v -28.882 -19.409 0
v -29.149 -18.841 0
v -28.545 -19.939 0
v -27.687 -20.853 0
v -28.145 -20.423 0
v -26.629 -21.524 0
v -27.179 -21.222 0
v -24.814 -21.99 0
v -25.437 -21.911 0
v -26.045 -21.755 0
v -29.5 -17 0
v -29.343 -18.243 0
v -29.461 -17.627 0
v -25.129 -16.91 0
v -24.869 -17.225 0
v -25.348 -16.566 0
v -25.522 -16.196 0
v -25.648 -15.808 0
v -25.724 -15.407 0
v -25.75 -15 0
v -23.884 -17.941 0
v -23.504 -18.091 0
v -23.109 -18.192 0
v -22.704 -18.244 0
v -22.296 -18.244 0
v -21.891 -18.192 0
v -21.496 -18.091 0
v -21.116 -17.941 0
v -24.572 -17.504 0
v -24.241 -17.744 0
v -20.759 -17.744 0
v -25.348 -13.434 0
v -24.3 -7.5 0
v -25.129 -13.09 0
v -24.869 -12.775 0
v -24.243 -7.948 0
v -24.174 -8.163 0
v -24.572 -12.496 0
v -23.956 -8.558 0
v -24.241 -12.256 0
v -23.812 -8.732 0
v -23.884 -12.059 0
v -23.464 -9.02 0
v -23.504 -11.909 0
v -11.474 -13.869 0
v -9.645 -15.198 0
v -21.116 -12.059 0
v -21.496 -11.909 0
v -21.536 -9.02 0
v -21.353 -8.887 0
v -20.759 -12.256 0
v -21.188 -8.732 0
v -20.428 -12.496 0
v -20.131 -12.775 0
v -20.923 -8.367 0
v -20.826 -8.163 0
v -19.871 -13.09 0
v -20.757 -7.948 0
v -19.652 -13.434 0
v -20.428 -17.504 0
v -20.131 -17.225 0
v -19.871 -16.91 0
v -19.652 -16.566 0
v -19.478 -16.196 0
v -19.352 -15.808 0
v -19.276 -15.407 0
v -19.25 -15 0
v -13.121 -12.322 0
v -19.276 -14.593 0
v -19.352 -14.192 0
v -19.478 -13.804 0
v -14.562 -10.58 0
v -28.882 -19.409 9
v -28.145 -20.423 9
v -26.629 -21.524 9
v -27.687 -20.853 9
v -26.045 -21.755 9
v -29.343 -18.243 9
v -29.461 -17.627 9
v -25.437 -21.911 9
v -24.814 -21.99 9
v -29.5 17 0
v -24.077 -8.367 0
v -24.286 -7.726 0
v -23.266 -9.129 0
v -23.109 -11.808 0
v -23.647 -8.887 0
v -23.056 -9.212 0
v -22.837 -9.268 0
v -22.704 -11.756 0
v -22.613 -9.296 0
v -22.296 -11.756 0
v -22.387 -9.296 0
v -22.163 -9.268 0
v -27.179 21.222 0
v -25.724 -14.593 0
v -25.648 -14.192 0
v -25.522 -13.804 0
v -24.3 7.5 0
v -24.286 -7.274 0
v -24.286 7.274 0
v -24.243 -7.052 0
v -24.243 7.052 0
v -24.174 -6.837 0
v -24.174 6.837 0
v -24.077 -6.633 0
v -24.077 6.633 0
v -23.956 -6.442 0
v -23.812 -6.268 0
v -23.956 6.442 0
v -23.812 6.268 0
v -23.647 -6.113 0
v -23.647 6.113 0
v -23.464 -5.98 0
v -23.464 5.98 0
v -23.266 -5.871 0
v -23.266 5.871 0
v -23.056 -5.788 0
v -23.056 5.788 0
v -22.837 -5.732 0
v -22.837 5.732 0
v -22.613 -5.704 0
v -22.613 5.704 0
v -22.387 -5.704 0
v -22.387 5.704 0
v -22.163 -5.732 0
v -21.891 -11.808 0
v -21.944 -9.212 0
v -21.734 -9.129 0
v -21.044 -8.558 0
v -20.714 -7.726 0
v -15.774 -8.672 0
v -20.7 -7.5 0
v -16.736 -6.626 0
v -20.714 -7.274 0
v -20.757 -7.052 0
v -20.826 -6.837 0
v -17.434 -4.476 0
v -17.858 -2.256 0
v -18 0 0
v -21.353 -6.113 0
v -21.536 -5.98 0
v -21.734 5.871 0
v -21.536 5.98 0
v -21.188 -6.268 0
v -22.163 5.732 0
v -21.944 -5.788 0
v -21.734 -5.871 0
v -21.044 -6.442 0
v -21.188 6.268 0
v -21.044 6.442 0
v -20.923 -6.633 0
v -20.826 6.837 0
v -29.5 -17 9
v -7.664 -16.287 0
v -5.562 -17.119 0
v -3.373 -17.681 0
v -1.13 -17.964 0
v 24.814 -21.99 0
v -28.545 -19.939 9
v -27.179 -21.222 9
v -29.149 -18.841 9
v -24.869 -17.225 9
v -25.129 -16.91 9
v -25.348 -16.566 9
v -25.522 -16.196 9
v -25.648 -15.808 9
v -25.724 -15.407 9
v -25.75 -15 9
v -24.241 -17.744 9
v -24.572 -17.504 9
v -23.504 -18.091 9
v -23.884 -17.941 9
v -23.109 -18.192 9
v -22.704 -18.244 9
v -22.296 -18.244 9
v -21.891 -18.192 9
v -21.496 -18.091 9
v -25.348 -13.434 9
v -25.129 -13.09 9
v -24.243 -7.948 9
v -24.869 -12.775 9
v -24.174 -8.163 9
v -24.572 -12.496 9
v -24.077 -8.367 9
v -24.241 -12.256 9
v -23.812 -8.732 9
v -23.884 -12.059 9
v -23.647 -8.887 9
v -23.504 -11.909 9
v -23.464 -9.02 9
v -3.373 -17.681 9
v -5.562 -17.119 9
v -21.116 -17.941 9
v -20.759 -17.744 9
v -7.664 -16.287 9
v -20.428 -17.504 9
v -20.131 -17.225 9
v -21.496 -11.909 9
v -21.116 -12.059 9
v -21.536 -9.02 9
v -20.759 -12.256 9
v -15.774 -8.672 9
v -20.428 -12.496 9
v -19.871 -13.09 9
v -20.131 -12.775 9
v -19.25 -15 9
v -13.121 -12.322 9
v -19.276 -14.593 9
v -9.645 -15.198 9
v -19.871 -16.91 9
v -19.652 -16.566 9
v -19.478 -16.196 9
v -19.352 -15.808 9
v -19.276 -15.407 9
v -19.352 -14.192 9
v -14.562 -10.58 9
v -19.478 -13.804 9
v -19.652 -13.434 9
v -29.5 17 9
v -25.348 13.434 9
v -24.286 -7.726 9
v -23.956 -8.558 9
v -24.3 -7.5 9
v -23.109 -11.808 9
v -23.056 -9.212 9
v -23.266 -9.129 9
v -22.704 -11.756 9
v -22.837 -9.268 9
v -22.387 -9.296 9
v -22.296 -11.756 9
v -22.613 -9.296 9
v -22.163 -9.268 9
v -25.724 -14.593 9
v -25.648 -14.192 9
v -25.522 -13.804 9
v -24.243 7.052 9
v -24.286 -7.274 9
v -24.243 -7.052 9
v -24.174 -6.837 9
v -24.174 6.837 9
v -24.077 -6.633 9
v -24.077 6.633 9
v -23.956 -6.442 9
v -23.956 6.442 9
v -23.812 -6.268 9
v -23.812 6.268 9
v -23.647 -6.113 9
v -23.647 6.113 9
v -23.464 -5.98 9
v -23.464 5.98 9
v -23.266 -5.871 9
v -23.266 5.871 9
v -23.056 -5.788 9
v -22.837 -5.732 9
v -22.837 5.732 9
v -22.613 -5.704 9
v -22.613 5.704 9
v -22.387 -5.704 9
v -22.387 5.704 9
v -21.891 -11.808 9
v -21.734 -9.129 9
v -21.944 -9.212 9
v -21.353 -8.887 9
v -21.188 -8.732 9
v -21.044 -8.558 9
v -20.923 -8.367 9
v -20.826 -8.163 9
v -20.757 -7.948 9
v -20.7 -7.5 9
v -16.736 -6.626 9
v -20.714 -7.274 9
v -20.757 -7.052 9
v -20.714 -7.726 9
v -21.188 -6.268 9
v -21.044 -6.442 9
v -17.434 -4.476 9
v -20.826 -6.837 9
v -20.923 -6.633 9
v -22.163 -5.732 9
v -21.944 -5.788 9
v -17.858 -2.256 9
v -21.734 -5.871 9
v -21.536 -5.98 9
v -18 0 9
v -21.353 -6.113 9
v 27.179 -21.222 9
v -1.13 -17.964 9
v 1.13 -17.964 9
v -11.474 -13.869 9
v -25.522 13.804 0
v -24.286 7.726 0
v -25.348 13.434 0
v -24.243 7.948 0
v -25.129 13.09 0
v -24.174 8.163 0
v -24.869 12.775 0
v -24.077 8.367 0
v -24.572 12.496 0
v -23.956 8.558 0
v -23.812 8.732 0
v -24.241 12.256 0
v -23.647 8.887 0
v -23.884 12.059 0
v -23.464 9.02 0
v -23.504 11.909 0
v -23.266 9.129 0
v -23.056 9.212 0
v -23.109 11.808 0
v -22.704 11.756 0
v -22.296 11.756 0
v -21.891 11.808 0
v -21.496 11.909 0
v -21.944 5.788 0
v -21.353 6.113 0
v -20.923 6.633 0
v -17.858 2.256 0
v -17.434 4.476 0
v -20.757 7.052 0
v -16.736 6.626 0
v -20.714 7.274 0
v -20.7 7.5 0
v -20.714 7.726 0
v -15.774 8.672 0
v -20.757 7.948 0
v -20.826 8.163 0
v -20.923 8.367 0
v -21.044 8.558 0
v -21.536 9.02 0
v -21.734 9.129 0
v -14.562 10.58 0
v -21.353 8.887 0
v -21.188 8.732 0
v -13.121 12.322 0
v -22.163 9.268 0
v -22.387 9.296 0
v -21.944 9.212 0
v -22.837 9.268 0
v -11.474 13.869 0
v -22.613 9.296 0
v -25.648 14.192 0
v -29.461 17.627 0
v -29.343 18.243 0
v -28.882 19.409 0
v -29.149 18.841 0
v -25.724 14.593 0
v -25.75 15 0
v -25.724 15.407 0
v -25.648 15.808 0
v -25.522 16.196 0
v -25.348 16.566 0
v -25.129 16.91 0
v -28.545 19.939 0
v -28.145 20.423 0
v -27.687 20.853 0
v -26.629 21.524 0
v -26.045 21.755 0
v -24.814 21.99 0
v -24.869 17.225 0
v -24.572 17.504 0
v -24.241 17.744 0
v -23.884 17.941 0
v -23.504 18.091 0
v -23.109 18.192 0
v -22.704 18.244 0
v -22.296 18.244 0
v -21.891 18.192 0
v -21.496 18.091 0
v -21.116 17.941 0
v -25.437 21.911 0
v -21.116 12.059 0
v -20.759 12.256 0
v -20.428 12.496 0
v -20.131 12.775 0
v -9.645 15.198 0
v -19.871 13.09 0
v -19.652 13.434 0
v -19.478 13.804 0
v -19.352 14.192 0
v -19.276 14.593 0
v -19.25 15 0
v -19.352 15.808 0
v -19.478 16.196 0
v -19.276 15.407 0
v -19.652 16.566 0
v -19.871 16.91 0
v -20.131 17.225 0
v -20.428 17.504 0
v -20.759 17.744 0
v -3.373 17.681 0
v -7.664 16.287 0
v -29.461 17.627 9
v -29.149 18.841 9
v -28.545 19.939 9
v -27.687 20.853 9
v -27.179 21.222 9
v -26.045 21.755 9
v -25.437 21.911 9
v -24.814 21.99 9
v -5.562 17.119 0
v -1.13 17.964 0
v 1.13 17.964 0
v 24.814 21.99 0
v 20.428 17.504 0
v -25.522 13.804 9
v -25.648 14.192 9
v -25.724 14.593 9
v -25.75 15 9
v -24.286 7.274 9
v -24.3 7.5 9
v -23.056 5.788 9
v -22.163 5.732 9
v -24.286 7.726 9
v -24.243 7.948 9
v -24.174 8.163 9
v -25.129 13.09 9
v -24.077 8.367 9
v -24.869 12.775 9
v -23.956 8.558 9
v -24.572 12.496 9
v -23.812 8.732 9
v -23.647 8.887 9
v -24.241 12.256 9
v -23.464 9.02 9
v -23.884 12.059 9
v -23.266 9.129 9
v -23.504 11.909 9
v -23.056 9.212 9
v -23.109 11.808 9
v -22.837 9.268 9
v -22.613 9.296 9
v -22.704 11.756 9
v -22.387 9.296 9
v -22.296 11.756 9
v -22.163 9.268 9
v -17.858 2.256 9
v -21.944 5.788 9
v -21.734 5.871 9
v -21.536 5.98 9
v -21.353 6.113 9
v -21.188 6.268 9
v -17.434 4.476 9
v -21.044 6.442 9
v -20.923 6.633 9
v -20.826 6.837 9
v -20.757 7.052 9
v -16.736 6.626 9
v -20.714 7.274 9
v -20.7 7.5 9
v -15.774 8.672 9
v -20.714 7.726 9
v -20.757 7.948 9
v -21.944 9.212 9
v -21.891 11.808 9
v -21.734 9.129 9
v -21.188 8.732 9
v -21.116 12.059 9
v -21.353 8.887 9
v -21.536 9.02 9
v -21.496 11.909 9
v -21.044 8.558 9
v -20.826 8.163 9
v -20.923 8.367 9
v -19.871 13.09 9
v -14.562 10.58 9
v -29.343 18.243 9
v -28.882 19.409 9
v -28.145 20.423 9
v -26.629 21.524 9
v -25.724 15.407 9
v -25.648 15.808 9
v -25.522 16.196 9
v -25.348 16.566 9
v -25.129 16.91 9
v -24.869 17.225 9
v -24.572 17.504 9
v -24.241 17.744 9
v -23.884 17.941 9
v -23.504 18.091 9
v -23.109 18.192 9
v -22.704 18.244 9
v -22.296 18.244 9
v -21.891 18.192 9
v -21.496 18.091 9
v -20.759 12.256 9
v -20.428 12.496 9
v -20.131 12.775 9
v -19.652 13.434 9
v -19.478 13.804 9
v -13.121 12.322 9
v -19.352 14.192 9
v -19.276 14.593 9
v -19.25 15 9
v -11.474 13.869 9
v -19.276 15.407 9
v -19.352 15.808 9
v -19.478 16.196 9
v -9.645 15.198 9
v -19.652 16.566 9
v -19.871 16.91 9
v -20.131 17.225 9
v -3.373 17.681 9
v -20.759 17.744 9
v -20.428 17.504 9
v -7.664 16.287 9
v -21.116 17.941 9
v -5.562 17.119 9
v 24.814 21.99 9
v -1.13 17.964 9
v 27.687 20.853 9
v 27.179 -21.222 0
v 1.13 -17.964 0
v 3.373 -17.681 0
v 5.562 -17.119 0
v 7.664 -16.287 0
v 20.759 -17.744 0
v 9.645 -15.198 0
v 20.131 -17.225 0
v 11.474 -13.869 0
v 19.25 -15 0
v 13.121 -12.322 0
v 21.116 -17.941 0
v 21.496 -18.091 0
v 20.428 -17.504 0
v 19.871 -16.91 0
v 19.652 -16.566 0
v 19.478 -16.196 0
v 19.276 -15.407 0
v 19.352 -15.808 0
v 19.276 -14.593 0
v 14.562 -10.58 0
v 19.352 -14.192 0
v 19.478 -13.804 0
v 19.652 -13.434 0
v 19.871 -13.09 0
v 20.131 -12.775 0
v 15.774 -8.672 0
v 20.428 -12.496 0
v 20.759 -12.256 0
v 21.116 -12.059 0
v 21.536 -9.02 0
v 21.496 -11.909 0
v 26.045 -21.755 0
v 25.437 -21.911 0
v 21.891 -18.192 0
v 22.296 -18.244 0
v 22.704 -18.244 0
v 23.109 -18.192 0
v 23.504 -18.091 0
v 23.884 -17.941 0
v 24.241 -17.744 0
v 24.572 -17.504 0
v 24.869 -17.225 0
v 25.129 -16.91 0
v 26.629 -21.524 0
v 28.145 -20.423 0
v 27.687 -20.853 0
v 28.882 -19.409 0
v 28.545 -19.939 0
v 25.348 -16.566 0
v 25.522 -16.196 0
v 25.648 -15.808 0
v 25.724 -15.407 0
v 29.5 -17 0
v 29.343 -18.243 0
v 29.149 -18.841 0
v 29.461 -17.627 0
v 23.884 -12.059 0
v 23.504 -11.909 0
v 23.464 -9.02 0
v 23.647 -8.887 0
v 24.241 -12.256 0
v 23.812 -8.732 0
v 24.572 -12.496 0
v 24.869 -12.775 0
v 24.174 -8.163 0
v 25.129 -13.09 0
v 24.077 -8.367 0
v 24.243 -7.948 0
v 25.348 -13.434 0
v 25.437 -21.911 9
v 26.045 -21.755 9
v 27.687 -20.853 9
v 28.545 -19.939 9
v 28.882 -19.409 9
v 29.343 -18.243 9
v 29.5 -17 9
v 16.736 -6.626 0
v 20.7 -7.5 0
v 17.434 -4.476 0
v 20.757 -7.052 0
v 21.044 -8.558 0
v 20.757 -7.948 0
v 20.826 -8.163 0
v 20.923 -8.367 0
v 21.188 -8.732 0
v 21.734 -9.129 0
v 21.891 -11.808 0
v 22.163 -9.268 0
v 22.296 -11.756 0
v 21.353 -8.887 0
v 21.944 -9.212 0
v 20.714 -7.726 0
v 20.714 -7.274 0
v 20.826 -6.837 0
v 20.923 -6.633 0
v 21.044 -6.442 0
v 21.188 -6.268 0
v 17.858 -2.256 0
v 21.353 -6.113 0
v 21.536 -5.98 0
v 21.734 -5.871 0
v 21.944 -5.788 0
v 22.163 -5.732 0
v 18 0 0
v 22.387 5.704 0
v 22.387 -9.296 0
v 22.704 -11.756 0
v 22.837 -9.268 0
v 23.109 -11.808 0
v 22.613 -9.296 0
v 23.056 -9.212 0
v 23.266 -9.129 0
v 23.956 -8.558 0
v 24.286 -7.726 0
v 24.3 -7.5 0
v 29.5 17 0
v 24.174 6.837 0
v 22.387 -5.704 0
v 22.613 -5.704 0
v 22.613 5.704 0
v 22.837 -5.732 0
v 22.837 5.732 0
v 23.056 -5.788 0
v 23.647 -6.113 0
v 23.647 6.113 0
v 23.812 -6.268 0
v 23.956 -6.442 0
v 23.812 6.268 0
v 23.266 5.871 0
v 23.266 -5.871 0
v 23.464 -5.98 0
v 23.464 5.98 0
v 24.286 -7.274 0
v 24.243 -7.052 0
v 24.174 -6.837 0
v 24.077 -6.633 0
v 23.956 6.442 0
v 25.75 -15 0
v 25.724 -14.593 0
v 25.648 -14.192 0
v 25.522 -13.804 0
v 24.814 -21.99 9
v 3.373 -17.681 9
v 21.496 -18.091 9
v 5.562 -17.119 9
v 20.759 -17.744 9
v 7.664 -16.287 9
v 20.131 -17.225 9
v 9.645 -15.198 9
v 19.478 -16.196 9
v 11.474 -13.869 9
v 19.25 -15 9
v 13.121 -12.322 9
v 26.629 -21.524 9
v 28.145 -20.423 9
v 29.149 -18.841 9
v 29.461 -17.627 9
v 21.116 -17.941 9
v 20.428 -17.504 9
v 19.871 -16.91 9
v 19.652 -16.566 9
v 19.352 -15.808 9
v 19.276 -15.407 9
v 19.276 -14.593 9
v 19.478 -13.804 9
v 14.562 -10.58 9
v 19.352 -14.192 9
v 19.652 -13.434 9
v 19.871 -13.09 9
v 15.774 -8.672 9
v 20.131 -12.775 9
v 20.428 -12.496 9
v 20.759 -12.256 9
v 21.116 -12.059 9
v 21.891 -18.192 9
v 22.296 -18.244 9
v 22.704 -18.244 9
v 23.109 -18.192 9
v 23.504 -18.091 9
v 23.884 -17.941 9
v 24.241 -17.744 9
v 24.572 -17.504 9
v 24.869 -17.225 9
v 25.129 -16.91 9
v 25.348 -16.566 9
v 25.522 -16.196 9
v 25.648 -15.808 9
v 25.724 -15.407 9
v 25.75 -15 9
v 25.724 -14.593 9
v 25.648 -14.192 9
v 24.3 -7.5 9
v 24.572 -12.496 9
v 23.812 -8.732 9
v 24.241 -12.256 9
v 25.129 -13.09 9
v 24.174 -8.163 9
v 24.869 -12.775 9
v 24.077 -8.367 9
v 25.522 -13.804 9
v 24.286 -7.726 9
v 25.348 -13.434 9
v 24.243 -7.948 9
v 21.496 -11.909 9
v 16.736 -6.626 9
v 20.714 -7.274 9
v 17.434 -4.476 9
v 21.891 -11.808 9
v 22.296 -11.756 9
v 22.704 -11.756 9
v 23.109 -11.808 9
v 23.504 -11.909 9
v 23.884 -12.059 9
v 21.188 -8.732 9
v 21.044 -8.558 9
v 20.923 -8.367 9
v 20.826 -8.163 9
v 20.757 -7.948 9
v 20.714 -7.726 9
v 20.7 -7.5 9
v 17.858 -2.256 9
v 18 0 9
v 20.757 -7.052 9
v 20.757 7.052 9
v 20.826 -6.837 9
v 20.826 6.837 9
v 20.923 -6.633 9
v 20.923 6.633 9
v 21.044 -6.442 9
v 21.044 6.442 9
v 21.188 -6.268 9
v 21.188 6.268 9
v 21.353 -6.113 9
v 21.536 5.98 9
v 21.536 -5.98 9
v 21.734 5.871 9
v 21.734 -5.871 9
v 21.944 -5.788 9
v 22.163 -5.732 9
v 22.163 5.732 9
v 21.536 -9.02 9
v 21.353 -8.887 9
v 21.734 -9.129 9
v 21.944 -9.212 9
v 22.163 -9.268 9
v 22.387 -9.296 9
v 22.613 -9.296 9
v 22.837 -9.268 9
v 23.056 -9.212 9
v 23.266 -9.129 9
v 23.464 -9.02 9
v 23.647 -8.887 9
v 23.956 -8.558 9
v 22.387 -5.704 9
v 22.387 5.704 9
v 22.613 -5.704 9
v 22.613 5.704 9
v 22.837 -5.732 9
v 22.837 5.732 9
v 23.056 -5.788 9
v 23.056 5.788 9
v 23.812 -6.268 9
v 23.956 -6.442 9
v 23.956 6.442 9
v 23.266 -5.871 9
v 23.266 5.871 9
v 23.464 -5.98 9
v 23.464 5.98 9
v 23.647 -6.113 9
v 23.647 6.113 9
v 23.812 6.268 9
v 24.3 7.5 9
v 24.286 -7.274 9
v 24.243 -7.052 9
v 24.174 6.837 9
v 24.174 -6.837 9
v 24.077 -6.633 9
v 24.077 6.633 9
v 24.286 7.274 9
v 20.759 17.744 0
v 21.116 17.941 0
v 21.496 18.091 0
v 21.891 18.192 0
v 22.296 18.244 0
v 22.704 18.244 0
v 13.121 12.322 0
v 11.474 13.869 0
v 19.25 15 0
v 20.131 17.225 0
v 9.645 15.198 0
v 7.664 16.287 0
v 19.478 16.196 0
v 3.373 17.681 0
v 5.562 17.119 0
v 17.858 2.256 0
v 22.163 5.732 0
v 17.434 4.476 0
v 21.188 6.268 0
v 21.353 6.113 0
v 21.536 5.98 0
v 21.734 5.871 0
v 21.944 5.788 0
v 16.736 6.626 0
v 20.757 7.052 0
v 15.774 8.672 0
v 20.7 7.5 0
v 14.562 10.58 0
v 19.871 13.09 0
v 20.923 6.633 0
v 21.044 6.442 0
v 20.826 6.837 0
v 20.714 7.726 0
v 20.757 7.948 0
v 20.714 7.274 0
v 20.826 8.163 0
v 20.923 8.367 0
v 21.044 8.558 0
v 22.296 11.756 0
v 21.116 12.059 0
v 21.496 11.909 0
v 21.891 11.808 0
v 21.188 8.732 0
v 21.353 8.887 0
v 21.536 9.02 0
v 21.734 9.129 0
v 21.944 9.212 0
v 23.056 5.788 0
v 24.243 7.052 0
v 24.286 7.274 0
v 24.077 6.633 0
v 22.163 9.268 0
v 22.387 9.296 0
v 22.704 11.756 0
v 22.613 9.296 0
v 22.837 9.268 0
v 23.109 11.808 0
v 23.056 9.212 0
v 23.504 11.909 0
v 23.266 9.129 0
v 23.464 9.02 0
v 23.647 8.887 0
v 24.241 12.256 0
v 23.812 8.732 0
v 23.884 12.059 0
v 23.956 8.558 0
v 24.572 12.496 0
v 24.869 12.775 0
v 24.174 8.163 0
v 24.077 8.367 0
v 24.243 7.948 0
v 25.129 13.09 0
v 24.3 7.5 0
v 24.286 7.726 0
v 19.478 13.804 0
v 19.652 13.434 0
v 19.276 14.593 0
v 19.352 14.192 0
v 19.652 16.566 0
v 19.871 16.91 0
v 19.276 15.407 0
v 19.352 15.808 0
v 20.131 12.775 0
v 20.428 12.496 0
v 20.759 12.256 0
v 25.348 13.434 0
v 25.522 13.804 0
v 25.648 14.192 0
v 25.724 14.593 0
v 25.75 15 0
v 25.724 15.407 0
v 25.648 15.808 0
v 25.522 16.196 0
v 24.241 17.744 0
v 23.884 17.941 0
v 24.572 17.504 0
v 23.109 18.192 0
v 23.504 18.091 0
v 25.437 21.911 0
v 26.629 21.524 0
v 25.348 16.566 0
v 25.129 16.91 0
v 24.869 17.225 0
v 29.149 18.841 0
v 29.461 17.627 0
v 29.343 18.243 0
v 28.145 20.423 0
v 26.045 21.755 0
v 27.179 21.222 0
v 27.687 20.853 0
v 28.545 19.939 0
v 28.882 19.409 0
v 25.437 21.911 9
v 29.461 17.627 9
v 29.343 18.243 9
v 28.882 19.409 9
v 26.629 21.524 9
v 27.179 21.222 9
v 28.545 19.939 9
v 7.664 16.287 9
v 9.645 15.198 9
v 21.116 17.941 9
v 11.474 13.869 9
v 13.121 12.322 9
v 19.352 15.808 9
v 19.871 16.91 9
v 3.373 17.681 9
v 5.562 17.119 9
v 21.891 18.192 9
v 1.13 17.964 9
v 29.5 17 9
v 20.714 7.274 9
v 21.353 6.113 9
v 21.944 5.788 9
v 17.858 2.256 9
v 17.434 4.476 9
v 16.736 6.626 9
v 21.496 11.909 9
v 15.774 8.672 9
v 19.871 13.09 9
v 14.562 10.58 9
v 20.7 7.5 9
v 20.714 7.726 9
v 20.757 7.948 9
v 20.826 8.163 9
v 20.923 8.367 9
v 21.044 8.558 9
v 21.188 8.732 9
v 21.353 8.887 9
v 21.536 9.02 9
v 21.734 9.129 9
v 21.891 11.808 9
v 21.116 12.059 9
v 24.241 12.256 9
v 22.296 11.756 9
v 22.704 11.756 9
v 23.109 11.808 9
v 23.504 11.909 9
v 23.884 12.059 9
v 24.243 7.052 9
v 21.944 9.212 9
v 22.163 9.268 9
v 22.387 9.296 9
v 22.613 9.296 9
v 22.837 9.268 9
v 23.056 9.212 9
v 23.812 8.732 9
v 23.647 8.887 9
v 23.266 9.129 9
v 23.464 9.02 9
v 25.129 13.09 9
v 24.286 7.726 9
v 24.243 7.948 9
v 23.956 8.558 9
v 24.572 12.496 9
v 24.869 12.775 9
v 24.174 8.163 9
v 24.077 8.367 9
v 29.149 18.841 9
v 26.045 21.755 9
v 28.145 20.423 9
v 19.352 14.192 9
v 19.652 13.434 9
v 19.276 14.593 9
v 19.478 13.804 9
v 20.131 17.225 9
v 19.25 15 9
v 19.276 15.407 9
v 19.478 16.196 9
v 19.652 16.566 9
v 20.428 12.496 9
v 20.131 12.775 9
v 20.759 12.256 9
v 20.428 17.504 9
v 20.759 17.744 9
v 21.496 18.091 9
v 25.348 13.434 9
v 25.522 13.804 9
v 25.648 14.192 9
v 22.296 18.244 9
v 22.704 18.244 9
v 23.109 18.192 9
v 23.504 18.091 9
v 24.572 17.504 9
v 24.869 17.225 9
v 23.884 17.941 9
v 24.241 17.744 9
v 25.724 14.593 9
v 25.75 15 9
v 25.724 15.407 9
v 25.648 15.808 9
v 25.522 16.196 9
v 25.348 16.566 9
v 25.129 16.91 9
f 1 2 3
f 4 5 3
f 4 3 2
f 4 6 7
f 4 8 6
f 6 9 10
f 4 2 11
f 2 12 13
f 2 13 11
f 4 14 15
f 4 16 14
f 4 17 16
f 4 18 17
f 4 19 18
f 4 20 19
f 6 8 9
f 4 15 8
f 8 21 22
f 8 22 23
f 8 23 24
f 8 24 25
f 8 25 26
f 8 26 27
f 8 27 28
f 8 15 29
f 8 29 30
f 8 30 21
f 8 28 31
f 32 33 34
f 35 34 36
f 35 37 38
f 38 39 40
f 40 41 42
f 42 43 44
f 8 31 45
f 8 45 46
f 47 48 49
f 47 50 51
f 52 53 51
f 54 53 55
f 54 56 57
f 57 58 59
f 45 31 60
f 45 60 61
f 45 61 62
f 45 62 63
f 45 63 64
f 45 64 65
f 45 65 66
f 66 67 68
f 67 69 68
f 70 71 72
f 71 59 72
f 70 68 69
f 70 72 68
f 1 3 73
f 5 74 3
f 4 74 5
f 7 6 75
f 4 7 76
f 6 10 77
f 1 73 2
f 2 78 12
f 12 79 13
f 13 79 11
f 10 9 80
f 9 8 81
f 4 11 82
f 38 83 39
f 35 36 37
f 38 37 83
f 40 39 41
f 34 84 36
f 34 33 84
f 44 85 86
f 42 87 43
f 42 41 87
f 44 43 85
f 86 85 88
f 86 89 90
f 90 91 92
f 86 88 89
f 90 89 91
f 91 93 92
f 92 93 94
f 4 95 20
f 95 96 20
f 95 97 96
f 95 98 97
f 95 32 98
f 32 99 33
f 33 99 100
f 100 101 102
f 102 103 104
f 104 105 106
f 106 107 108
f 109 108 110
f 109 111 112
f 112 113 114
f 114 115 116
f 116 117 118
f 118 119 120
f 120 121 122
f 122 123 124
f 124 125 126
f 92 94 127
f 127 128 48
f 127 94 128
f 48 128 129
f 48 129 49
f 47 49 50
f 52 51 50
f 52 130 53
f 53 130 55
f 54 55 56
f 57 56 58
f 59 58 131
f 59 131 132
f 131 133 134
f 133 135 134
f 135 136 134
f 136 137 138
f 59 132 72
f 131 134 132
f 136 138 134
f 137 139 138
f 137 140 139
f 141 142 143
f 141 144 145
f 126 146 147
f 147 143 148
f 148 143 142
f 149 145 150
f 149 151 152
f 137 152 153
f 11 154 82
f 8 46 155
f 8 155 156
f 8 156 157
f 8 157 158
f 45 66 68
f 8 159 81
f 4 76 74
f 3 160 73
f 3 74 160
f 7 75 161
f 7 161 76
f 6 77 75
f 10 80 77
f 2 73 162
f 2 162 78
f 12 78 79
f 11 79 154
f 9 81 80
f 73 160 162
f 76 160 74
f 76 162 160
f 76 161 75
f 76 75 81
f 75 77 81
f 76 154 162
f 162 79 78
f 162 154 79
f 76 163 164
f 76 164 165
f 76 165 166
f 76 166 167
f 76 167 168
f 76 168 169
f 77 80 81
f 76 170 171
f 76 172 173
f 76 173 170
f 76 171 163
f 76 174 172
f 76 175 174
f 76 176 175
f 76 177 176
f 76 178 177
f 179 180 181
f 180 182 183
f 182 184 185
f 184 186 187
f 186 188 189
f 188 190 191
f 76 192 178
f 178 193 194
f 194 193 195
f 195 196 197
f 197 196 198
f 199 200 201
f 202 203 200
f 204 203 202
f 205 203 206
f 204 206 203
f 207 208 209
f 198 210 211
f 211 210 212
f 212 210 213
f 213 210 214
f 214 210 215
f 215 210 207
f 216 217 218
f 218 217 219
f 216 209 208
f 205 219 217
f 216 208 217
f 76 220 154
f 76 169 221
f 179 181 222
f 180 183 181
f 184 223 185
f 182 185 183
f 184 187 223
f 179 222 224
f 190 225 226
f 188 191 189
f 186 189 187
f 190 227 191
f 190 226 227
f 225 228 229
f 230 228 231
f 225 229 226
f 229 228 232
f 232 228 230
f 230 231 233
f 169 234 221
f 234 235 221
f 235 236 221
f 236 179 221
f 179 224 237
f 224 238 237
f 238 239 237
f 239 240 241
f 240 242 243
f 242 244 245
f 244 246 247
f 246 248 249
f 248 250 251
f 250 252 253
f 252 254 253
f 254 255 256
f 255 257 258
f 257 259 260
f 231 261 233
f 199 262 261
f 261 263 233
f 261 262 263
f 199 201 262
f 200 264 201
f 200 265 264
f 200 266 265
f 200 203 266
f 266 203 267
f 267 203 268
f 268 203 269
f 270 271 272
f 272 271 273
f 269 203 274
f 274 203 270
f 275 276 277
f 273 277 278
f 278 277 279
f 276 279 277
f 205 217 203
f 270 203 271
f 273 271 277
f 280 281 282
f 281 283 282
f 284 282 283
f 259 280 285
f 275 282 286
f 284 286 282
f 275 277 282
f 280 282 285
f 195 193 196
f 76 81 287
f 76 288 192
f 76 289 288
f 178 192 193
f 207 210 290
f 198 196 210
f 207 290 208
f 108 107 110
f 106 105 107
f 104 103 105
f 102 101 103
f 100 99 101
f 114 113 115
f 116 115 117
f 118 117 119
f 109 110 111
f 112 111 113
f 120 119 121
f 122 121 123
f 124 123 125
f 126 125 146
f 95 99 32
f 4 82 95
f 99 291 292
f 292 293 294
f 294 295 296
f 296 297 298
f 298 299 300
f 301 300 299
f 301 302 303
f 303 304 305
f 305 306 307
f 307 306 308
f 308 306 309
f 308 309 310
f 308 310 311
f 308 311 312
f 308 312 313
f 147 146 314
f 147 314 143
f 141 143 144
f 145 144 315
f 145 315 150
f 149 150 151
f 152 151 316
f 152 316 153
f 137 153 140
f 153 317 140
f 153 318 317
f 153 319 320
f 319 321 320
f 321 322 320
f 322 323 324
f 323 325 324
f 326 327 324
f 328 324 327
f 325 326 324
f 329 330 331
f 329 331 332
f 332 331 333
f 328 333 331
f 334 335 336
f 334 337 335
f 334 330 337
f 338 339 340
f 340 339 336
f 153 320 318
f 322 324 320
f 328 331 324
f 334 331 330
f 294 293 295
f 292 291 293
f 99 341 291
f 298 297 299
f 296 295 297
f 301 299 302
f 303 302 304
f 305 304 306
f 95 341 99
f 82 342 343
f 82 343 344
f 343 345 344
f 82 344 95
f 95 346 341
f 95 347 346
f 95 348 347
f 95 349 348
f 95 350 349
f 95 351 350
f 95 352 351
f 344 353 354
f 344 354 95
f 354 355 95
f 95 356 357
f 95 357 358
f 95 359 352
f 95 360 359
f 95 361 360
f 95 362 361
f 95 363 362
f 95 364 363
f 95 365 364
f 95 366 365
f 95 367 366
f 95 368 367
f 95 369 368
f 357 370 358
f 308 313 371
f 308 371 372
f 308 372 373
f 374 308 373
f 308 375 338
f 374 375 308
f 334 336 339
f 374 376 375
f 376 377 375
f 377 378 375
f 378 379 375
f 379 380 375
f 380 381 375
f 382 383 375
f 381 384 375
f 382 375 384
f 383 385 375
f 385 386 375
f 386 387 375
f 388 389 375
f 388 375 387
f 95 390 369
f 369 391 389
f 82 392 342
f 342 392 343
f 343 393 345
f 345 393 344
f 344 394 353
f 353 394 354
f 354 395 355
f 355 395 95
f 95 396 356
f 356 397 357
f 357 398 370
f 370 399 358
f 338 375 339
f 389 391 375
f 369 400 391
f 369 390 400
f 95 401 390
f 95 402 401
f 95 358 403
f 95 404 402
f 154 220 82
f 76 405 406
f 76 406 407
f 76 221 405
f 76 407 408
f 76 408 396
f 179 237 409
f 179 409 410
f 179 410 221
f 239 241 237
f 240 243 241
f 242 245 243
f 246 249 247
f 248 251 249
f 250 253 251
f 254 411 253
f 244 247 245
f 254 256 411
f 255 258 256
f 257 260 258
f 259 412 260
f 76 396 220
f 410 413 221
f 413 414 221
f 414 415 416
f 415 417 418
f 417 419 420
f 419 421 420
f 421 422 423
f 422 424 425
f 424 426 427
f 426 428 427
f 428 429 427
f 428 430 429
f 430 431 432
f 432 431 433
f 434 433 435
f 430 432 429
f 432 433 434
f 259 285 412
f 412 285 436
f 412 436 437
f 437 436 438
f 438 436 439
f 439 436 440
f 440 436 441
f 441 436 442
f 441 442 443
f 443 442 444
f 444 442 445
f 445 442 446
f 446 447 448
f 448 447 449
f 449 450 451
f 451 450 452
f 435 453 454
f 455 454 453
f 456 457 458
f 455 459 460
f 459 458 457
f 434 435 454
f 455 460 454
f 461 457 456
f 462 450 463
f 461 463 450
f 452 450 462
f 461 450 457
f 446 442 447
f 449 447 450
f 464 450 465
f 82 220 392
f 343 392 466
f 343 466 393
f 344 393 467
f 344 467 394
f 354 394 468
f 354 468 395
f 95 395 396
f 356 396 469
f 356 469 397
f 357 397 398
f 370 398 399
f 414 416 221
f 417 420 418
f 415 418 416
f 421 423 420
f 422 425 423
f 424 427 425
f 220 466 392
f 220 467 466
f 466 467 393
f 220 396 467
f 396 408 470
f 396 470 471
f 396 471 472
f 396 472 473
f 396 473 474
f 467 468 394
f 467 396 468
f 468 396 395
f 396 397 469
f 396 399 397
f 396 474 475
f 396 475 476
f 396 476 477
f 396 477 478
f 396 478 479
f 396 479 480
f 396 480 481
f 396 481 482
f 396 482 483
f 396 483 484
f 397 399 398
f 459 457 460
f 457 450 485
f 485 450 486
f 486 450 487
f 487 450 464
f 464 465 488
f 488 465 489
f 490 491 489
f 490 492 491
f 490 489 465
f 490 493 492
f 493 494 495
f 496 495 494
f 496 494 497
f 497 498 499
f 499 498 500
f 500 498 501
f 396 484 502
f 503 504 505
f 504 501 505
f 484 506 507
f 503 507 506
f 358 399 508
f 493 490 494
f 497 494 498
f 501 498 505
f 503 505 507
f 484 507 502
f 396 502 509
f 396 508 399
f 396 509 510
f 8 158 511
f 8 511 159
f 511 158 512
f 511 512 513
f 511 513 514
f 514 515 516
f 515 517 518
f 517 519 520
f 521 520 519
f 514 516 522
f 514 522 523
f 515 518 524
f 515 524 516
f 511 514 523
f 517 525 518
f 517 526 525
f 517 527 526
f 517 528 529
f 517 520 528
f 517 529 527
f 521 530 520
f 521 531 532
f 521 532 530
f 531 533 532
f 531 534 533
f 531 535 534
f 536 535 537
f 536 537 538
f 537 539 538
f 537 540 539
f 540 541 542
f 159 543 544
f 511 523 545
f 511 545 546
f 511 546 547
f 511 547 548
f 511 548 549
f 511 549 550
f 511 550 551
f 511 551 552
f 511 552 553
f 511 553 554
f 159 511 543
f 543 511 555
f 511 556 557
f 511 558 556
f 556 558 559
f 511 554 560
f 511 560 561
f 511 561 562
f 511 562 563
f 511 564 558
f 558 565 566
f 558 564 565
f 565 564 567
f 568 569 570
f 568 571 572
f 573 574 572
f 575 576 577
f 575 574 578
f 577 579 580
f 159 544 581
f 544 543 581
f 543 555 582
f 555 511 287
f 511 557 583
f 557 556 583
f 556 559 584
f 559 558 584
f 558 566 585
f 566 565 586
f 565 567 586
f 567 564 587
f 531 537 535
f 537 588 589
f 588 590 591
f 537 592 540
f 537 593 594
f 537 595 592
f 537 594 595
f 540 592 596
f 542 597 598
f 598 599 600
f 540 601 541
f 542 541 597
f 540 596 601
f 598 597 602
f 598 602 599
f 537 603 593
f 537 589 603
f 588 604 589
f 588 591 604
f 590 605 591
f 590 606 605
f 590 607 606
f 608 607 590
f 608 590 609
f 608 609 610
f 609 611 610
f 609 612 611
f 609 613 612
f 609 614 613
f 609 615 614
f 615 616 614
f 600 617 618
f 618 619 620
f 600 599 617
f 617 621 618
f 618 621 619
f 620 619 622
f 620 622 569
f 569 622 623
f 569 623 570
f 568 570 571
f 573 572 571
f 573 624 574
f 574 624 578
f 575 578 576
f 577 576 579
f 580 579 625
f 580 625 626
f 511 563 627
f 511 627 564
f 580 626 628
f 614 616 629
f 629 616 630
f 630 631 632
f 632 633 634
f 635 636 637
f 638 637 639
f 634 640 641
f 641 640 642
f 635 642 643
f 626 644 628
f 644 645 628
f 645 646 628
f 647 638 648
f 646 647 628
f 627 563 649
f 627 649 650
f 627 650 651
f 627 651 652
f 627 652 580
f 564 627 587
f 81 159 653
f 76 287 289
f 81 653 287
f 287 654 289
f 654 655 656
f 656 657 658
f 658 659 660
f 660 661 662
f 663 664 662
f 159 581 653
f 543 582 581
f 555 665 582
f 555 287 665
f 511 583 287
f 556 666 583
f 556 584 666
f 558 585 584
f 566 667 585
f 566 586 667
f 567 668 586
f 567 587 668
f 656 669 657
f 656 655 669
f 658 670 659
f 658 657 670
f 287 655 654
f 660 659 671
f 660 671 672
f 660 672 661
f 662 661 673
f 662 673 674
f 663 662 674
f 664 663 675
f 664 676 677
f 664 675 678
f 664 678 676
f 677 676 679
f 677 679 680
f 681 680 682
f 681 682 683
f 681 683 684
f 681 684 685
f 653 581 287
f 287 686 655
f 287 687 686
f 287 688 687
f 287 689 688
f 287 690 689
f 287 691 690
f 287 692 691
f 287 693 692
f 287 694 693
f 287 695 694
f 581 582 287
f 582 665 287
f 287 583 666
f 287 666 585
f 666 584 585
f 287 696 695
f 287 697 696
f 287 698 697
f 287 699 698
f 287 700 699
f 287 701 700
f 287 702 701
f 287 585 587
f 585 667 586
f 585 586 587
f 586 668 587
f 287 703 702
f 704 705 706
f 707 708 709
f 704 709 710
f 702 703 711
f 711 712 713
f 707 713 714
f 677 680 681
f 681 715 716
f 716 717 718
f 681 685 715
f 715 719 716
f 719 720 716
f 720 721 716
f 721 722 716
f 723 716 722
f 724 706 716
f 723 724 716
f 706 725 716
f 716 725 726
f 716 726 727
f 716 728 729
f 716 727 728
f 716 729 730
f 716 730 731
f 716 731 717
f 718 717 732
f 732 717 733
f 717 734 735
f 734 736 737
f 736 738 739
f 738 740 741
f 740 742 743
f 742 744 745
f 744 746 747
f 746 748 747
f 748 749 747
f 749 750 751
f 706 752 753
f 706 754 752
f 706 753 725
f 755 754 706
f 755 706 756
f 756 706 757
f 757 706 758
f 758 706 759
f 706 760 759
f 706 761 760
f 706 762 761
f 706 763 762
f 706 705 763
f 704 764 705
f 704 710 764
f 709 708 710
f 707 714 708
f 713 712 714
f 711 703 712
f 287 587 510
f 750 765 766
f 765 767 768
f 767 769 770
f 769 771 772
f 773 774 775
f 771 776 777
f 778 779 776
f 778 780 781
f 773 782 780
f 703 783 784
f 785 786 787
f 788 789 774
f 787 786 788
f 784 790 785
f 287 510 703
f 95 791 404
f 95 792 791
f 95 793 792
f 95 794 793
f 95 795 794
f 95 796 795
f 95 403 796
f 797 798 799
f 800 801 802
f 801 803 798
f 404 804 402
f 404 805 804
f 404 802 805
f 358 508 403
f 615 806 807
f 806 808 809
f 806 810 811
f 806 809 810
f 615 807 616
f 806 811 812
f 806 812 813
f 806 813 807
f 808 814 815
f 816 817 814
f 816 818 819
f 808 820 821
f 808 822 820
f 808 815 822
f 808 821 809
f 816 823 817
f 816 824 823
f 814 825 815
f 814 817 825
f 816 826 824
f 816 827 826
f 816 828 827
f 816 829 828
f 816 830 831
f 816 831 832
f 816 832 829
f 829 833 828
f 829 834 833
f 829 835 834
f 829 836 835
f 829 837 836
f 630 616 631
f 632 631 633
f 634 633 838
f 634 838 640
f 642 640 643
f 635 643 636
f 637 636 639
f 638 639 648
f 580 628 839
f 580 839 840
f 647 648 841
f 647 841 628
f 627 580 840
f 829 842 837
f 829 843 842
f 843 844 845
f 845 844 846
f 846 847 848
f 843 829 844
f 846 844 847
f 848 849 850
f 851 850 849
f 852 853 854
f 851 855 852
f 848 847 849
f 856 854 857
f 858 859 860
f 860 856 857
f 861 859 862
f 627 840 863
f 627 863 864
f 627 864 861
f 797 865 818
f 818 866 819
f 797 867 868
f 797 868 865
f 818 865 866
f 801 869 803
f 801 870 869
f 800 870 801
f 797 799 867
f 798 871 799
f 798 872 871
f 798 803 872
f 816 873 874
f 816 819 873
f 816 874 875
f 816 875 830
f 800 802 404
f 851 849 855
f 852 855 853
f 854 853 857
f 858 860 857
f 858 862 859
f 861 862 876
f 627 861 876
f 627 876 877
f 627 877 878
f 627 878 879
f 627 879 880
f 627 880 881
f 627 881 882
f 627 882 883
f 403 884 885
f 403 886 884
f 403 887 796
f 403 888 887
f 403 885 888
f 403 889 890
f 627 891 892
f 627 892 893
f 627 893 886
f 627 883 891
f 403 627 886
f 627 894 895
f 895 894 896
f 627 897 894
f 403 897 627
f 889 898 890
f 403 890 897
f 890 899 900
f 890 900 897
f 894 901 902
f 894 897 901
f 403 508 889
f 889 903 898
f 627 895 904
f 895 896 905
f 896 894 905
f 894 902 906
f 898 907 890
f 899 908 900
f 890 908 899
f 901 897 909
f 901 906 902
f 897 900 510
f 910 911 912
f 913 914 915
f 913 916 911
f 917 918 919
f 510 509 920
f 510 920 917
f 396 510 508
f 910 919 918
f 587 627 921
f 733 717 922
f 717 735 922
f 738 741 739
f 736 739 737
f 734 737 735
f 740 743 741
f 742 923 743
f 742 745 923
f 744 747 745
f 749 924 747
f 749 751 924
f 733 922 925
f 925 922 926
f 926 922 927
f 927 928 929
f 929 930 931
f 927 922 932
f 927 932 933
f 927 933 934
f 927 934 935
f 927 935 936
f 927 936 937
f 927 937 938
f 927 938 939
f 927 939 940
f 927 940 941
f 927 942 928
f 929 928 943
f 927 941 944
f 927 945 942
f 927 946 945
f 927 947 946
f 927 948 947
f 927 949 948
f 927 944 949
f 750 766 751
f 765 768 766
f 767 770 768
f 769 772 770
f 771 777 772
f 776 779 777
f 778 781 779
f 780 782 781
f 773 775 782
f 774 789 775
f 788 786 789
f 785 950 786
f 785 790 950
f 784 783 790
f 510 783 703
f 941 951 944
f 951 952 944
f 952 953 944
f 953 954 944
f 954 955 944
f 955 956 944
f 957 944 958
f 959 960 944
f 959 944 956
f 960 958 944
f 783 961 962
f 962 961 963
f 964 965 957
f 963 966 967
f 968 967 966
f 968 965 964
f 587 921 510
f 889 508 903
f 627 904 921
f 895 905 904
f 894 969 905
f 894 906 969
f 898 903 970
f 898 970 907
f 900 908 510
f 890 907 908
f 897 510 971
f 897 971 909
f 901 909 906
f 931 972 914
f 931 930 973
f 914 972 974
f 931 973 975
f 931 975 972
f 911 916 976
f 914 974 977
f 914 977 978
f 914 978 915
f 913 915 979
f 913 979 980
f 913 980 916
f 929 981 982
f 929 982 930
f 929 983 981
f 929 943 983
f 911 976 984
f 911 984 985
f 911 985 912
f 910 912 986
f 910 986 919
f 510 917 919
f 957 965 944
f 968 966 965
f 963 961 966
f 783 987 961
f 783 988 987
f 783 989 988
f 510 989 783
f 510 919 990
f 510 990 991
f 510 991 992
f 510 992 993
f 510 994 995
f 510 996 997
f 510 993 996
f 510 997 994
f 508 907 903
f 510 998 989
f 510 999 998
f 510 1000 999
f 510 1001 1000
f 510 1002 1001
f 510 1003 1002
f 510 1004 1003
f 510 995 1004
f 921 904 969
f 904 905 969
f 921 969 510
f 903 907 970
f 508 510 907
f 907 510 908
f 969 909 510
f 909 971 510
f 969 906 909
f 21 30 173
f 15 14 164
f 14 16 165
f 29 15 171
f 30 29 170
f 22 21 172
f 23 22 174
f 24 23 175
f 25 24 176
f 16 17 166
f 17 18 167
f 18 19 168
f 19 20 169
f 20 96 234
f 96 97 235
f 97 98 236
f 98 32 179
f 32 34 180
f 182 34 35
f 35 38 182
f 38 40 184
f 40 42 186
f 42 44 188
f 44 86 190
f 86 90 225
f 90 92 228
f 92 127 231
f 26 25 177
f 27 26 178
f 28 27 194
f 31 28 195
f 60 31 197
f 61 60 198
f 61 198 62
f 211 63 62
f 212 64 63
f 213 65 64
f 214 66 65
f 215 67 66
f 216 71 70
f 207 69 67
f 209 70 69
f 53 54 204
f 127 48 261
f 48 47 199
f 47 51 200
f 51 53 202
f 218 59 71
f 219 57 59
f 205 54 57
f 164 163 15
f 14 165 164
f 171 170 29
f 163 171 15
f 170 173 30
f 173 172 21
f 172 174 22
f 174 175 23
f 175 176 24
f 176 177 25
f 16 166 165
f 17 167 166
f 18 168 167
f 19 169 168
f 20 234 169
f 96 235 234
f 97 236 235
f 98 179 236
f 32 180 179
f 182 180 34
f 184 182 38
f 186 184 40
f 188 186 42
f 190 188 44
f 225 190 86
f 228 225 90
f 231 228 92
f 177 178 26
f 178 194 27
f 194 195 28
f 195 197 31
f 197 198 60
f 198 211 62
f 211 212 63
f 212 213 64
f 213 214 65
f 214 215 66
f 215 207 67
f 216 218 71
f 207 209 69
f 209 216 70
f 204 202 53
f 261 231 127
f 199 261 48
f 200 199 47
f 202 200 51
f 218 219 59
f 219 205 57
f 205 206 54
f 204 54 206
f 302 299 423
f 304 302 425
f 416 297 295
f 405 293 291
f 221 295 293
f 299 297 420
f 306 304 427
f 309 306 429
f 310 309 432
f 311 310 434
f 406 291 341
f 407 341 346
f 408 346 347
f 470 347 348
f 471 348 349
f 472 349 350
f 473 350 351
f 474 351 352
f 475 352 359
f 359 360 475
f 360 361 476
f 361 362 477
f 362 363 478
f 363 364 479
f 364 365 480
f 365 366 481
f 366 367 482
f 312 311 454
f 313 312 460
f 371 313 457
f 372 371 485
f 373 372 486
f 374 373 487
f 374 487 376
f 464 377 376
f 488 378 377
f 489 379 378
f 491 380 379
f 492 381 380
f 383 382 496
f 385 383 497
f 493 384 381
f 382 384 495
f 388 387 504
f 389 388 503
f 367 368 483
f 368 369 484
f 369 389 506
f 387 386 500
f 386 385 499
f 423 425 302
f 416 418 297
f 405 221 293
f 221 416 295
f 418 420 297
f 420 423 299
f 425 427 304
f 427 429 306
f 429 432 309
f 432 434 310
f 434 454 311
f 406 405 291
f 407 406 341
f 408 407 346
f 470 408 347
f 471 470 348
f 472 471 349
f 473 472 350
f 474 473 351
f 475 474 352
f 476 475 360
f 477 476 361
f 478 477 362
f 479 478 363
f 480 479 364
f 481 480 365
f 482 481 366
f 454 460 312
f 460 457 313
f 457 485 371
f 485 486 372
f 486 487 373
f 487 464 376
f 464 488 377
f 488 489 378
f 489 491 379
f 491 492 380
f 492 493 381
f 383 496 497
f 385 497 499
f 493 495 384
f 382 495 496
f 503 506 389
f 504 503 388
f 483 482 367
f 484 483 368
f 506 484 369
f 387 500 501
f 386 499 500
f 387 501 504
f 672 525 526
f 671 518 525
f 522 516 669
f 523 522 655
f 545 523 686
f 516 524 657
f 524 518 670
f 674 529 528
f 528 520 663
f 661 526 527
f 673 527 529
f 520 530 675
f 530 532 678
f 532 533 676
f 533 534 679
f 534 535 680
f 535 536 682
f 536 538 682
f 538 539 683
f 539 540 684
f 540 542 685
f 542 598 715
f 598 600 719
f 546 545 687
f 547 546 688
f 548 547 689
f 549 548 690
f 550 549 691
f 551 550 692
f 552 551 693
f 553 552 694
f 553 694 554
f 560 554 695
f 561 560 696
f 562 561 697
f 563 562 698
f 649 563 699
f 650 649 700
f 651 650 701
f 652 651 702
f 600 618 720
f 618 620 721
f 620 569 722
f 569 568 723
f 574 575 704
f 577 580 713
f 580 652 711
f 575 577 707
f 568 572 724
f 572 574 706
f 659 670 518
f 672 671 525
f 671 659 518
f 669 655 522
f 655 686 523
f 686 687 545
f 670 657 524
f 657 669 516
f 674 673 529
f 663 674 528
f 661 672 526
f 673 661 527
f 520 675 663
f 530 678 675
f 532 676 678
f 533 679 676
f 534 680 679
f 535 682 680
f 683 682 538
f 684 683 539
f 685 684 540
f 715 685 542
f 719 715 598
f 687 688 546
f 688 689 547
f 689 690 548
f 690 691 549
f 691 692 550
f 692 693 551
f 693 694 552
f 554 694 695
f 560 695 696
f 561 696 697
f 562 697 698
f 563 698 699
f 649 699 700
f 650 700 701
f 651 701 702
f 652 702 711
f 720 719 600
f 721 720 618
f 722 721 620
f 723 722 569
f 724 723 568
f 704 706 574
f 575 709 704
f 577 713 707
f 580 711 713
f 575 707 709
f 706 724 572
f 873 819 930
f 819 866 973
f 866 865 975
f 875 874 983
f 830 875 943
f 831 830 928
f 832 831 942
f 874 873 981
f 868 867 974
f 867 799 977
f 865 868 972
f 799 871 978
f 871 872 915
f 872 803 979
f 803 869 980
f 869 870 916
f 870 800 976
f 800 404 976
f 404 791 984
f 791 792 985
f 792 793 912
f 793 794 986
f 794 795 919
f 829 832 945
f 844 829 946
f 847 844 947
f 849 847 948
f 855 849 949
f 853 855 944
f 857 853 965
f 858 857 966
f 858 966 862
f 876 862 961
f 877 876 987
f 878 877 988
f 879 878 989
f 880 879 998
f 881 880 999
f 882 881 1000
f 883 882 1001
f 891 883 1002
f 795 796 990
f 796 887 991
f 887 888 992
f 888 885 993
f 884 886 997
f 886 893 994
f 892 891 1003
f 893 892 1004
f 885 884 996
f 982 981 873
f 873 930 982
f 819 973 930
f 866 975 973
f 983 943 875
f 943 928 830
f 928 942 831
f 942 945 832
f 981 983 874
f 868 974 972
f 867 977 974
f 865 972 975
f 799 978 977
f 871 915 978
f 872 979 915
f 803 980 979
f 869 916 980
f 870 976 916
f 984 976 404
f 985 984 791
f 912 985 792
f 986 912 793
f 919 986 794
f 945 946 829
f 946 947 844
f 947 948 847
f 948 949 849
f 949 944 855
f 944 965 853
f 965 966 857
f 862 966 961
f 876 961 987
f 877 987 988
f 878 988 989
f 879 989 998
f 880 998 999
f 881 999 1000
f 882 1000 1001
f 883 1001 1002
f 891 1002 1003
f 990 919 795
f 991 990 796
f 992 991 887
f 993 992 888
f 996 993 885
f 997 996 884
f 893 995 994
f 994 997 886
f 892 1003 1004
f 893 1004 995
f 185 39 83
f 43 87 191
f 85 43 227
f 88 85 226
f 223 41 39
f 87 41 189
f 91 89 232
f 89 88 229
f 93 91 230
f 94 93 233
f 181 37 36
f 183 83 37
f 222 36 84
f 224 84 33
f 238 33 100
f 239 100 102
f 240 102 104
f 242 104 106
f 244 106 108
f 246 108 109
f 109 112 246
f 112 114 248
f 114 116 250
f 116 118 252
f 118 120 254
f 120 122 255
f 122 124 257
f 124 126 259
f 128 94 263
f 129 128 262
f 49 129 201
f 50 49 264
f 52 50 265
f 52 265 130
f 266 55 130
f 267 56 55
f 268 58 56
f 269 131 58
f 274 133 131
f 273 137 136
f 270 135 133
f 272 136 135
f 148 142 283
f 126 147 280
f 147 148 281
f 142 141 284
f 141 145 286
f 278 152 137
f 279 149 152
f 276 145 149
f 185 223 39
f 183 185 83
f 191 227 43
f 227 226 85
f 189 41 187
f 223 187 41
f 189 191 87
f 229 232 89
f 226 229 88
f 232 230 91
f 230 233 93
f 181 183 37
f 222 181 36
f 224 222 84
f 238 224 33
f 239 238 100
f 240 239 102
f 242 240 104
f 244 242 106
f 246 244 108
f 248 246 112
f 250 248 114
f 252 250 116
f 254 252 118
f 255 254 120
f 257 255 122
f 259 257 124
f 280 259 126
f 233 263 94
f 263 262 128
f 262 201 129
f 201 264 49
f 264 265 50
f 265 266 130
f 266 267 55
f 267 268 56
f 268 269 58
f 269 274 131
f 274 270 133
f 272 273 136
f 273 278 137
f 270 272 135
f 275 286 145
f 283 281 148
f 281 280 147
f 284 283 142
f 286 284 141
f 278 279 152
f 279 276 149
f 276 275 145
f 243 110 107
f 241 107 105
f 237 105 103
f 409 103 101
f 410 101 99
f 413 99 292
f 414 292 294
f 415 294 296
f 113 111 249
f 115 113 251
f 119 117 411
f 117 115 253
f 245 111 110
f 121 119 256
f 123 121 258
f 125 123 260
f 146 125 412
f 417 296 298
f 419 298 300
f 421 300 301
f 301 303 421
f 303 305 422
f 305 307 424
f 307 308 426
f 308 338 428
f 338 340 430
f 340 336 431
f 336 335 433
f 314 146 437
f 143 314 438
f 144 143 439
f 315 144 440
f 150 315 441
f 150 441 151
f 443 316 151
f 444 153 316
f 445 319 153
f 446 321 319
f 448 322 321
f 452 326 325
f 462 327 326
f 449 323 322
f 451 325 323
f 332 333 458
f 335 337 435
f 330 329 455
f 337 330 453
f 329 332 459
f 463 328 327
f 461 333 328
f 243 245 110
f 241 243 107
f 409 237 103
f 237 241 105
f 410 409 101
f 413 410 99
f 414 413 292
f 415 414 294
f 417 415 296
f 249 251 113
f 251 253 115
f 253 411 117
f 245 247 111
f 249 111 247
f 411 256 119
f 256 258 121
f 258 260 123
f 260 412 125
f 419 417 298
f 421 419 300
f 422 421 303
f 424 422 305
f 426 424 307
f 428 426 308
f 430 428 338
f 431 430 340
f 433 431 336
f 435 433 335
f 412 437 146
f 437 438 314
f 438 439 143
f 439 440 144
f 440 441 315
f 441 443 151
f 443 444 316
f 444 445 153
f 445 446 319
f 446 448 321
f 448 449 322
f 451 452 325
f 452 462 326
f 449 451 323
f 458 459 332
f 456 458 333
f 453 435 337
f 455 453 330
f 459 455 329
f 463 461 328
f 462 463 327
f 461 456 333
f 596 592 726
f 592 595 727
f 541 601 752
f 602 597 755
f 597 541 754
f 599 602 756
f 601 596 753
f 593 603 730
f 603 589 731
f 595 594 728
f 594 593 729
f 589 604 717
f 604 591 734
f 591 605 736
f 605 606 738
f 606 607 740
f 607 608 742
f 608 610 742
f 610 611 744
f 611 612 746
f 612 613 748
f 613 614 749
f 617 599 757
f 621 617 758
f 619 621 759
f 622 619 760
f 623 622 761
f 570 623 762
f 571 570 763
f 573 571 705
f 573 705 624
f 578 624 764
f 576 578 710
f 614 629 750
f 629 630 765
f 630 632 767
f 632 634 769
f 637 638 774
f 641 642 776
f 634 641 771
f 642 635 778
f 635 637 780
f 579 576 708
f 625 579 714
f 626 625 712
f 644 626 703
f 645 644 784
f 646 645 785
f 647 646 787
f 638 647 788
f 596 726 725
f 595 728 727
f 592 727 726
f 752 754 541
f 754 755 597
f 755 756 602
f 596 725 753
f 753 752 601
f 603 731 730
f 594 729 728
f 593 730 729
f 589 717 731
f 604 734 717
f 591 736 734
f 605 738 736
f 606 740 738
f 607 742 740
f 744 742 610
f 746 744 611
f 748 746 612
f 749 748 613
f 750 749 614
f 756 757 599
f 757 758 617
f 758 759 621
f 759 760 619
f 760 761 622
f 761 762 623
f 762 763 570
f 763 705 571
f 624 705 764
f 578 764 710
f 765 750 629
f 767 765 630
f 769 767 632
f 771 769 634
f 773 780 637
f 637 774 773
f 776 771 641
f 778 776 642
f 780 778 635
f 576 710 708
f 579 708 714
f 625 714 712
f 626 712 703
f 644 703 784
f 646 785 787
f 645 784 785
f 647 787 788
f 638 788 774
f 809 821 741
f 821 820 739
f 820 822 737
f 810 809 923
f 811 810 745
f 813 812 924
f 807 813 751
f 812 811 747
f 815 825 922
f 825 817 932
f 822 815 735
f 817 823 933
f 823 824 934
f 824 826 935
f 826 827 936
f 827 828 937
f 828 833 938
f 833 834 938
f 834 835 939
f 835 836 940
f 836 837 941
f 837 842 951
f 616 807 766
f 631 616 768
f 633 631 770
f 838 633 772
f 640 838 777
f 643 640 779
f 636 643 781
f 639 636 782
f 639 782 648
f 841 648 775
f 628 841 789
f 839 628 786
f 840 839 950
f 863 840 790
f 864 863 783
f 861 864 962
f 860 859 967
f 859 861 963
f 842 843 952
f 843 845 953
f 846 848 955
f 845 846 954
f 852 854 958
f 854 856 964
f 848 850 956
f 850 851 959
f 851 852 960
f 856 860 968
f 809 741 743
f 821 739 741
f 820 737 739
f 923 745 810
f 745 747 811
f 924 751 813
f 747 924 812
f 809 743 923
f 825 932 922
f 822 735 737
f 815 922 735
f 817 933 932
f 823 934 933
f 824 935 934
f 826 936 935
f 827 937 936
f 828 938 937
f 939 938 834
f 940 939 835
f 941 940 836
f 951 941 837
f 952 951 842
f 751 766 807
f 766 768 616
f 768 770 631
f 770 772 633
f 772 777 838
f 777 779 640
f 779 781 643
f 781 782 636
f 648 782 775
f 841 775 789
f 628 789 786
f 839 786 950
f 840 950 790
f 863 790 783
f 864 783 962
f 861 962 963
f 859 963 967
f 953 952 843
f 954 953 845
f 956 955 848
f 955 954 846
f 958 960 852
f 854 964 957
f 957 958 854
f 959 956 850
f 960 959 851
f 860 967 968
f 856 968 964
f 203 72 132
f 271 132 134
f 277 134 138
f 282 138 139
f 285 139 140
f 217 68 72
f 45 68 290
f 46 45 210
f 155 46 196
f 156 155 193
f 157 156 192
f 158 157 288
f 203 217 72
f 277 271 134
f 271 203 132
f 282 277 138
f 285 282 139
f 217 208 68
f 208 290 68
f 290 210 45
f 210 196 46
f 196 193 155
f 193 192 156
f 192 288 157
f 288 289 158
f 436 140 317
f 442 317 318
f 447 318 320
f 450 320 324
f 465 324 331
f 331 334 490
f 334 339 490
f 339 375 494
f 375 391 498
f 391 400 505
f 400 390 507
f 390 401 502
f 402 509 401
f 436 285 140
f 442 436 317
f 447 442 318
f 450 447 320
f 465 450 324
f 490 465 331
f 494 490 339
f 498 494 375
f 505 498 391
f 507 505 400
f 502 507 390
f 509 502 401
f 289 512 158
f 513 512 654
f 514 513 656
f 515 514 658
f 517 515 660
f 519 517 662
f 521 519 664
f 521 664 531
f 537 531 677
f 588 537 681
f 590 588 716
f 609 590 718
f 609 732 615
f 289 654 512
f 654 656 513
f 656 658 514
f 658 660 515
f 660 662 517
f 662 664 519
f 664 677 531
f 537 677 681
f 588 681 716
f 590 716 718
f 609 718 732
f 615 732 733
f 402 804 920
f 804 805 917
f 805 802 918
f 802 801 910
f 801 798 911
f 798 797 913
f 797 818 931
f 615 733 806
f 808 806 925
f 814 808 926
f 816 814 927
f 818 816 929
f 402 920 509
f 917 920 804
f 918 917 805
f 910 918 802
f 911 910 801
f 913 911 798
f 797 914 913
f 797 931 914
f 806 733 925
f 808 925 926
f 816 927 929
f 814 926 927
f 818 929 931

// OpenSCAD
$fn = 50;

difference() {
	union() {
		hull() {
			translate(v = [-24.5, 17.0, 0]) {
				cylinder(h = 9, r = 5);
			}
			translate(v = [24.5, 17.0, 0]) {
				cylinder(h = 9, r = 5);
			}
			translate(v = [-24.5, -17.0, 0]) {
				cylinder(h = 9, r = 5);
			}
			translate(v = [24.5, -17.0, 0]) {
				cylinder(h = 9, r = 5);
			}
		}
	}
	union() {
		translate(v = [-22.5, -15.0, 0]) {
			cylinder(h = 9, r = 3.25);
		}
		translate(v = [-22.5, 15.0, 0]) {
			cylinder(h = 9, r = 3.25);
		}
		translate(v = [22.5, -15.0, 0]) {
			cylinder(h = 9, r = 3.25);
		}
		translate(v = [22.5, 15.0, 0]) {
			cylinder(h = 9, r = 3.25);
		}
		translate(v = [-22.5, -7.5, 0]) {
			cylinder(h = 9, r = 1.8);
		}
		translate(v = [-22.5, 7.5, 0]) {
			cylinder(h = 9, r = 1.8);
		}
		translate(v = [22.5, -7.5, 0]) {
			cylinder(h = 9, r = 1.8);
		}
		translate(v = [22.5, 7.5, 0]) {
			cylinder(h = 9, r = 1.8);
		}
		cylinder(h = 9, r = 18.0);
	}
}
